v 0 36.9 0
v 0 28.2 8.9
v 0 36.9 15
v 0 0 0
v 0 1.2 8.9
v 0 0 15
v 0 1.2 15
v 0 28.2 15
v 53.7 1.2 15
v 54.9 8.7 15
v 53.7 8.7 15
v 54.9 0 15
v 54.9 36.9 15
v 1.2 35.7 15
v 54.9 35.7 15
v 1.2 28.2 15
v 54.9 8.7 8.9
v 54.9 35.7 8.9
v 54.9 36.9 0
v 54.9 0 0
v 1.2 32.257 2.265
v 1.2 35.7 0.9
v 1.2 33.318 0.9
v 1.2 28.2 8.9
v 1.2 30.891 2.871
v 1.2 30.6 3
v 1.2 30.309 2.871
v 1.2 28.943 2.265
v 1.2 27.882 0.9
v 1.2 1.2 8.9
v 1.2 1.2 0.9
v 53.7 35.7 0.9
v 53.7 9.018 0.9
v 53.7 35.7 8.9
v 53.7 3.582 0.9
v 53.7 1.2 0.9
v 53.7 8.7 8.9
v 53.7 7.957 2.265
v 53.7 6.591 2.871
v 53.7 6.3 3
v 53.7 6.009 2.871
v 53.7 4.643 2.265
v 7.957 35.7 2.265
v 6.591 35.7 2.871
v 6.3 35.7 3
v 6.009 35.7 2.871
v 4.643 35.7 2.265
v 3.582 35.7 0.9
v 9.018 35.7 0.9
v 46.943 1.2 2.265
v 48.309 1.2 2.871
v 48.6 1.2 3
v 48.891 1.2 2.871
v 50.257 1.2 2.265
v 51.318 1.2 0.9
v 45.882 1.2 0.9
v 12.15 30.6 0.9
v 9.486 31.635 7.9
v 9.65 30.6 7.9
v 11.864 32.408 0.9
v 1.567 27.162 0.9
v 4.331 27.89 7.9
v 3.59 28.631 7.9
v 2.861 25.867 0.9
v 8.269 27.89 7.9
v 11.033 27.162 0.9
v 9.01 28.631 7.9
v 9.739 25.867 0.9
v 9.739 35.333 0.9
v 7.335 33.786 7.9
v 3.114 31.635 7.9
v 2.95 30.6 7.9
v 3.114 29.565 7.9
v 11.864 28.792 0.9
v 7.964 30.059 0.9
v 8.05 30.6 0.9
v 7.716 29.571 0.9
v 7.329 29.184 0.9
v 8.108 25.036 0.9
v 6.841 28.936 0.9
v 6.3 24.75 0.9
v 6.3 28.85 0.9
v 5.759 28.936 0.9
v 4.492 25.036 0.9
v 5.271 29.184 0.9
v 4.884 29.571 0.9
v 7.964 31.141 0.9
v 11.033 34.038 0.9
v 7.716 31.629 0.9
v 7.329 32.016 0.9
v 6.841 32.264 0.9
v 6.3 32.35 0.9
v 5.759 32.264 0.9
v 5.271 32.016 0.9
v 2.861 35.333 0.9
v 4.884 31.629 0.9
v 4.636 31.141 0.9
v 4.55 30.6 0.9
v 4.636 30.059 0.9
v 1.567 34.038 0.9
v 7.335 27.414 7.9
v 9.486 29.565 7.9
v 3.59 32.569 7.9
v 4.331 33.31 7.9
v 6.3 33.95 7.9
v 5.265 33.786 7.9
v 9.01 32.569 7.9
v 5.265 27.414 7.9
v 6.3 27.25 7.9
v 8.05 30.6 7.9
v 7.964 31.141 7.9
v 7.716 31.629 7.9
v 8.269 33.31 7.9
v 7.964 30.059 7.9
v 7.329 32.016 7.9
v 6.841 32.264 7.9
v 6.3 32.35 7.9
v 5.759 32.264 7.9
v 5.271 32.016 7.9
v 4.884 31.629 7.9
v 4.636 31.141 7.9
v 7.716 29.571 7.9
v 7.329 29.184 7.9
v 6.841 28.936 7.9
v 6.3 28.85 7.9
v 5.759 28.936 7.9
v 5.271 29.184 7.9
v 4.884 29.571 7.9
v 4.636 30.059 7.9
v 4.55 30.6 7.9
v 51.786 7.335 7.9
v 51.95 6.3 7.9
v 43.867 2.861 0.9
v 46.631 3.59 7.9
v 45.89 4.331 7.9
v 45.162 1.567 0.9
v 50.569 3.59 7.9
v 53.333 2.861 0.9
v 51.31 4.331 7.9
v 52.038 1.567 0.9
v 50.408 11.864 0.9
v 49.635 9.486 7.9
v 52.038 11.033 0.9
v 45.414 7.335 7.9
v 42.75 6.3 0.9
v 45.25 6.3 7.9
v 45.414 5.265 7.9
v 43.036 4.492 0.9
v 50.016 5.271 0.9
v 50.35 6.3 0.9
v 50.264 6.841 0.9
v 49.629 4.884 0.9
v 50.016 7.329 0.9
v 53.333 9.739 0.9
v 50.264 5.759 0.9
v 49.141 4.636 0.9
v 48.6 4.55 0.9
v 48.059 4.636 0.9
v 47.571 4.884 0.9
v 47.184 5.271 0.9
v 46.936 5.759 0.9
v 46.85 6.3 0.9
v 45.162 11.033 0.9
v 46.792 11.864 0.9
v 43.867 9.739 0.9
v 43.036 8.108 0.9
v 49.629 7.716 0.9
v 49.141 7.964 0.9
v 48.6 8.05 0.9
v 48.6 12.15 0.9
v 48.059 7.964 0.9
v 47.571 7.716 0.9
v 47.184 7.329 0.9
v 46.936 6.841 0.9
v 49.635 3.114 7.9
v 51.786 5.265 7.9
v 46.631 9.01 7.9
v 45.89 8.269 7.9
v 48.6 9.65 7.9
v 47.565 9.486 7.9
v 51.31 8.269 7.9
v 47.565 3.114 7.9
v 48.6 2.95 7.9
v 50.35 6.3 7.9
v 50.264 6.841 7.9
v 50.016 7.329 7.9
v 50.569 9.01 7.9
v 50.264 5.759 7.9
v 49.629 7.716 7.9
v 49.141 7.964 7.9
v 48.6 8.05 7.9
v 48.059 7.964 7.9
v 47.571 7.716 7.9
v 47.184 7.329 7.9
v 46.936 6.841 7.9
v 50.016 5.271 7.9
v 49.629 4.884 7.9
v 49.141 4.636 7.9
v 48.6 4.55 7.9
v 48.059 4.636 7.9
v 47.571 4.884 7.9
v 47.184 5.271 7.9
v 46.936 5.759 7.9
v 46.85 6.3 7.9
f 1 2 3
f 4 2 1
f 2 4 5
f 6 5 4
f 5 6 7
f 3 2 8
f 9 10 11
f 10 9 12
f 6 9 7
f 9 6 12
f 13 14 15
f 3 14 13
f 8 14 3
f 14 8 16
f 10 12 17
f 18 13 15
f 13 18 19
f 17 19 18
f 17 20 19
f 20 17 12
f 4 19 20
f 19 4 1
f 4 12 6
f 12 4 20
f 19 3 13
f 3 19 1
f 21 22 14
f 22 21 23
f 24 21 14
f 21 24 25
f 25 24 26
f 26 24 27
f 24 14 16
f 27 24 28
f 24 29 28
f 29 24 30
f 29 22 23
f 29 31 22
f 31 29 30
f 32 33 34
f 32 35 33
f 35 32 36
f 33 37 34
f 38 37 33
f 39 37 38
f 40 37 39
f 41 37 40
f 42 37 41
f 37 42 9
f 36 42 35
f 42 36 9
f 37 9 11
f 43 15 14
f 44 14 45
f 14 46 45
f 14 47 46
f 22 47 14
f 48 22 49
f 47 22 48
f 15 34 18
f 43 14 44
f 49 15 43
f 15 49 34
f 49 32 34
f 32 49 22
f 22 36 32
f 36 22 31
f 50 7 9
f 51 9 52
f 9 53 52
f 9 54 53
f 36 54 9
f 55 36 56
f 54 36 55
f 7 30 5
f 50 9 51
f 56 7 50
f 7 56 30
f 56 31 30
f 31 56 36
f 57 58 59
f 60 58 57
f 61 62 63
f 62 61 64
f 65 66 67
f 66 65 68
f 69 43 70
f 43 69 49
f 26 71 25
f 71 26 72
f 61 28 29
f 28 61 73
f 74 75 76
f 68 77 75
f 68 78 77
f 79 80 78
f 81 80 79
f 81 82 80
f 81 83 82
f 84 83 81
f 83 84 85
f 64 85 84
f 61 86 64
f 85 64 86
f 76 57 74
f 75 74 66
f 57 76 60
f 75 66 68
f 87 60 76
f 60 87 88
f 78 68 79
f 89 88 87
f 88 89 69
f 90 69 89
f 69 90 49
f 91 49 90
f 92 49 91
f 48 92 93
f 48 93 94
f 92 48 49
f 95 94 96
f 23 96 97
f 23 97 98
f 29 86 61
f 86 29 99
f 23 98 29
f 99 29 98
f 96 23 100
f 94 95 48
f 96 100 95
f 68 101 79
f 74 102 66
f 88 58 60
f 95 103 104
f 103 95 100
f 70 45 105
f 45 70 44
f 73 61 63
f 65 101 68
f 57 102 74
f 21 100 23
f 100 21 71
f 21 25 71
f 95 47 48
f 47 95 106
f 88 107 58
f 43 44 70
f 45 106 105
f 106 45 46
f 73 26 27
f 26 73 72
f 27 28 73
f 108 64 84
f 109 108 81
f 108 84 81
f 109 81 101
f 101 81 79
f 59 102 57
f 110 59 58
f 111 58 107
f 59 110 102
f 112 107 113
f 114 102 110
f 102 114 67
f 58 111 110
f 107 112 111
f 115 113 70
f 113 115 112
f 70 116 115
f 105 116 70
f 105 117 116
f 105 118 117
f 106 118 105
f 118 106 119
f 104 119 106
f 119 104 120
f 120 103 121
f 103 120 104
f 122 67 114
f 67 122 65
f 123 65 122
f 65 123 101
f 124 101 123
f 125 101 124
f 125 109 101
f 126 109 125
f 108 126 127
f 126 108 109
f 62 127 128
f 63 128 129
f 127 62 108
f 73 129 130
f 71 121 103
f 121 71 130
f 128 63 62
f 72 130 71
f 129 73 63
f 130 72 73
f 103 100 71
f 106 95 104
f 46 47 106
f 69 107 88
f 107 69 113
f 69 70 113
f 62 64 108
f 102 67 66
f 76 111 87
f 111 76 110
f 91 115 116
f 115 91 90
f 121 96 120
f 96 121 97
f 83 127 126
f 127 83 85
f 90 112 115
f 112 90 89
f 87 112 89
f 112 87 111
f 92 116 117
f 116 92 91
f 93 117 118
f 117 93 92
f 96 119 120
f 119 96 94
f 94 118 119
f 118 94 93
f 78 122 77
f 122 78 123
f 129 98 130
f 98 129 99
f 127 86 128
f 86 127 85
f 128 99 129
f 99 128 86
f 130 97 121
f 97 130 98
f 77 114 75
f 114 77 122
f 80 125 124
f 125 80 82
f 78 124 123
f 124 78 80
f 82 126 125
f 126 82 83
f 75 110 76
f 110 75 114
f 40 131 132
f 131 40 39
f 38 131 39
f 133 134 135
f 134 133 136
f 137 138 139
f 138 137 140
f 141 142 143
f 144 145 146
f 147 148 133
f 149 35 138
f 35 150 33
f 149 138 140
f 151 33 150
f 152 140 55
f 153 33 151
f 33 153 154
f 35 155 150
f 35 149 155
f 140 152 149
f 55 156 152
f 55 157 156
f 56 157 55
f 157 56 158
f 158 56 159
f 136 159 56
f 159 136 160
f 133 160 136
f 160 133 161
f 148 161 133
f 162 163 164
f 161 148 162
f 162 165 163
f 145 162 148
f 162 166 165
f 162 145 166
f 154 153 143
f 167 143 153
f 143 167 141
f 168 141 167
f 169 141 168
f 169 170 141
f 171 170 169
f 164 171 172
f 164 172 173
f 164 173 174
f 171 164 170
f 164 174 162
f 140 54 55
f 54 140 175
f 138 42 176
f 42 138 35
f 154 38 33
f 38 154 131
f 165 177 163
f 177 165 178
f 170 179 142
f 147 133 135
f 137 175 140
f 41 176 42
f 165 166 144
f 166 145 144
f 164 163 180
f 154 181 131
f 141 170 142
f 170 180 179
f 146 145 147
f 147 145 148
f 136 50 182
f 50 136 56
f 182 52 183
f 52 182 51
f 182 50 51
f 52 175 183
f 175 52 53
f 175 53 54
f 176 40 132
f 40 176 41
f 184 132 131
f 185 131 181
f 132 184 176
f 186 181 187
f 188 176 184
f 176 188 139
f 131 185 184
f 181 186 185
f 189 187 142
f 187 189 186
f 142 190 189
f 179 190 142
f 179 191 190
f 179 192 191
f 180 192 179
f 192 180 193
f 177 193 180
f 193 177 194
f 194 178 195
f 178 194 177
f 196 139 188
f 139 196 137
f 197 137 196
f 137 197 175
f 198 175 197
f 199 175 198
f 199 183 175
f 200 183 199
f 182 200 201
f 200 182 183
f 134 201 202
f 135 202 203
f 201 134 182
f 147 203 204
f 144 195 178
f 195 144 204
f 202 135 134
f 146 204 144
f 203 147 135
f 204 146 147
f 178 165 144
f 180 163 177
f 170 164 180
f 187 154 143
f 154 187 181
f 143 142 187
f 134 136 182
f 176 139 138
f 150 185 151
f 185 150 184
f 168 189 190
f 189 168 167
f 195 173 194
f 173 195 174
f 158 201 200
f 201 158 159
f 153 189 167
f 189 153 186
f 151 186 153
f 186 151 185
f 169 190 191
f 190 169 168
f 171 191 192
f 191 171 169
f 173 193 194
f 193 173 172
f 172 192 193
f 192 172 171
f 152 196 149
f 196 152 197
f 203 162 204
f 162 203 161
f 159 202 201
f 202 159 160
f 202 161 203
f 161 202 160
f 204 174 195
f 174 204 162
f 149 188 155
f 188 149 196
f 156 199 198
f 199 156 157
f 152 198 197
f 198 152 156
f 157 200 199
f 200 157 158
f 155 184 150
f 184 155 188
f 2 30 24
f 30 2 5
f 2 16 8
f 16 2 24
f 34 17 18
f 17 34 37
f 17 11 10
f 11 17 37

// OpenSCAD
board_width = 52.5;
board_length = 34.5;
board_height = 1;

floor_thickness = 0.3*3;
wall_width = 0.4*3;

box_height = 15;
standoff_height = 7;
standoff_wall_thickness = 1.6;

terminal_block_width = 27;
terminal_block_length = wall_width;
terminal_block_height = 7;
terminal_block_x_offset = 0;
terminal_block_y_offset = wall_width;
terminal_block_z_offset = floor_thickness+standoff_height+board_height;

screw_radius = 1.75;
screw_offset = 3.5; // x and y

module basic_box() {
  difference() {
    cube([board_width+(wall_width*2), board_length+(wall_width*2), box_height]);
    translate([wall_width, wall_width, floor_thickness]) cube([board_width, board_length, box_height]);
  }
}

module standoff() {
  difference() {
    // cylinder(h=standoff_height, r=screw_radius+standoff_wall_thickness, $fn=20);
    cylinder(h=standoff_height, r1=screw_radius+standoff_wall_thickness+2.5, r2=screw_radius+standoff_wall_thickness, $fn=20);
    cylinder(h=standoff_height, r=screw_radius, $fn=20);
  }
}

module full_box() {

  basic_box();

  standoff_x_and_y = screw_offset+(wall_width)+standoff_wall_thickness;

  // translate([standoff_x_and_y, standoff_x_and_y, floor_thickness]) standoff();
  // translate([(board_width+(wall_width*2))-standoff_x_and_y, (board_length+(wall_width*2))-standoff_x_and_y, floor_thickness]) standoff();
  translate([standoff_x_and_y, (board_length+(wall_width*2))-standoff_x_and_y, floor_thickness]) standoff();
  translate([(board_width+(wall_width*2))-standoff_x_and_y, standoff_x_and_y, floor_thickness]) standoff();
}


difference() {
  full_box();
  // translate([board_width/4.9, board_length/5, 0])
  //   cube([board_width/1.6, board_length/1.5, floor_thickness*2]);

  translate([terminal_block_x_offset,terminal_block_y_offset,terminal_block_z_offset]) cube([terminal_block_length, terminal_block_width, terminal_block_height]);

  translate([(board_width+(wall_width))-terminal_block_x_offset,board_length+(wall_width)-terminal_block_width,terminal_block_z_offset]) cube([terminal_block_length, terminal_block_width, terminal_block_height]);  
}
